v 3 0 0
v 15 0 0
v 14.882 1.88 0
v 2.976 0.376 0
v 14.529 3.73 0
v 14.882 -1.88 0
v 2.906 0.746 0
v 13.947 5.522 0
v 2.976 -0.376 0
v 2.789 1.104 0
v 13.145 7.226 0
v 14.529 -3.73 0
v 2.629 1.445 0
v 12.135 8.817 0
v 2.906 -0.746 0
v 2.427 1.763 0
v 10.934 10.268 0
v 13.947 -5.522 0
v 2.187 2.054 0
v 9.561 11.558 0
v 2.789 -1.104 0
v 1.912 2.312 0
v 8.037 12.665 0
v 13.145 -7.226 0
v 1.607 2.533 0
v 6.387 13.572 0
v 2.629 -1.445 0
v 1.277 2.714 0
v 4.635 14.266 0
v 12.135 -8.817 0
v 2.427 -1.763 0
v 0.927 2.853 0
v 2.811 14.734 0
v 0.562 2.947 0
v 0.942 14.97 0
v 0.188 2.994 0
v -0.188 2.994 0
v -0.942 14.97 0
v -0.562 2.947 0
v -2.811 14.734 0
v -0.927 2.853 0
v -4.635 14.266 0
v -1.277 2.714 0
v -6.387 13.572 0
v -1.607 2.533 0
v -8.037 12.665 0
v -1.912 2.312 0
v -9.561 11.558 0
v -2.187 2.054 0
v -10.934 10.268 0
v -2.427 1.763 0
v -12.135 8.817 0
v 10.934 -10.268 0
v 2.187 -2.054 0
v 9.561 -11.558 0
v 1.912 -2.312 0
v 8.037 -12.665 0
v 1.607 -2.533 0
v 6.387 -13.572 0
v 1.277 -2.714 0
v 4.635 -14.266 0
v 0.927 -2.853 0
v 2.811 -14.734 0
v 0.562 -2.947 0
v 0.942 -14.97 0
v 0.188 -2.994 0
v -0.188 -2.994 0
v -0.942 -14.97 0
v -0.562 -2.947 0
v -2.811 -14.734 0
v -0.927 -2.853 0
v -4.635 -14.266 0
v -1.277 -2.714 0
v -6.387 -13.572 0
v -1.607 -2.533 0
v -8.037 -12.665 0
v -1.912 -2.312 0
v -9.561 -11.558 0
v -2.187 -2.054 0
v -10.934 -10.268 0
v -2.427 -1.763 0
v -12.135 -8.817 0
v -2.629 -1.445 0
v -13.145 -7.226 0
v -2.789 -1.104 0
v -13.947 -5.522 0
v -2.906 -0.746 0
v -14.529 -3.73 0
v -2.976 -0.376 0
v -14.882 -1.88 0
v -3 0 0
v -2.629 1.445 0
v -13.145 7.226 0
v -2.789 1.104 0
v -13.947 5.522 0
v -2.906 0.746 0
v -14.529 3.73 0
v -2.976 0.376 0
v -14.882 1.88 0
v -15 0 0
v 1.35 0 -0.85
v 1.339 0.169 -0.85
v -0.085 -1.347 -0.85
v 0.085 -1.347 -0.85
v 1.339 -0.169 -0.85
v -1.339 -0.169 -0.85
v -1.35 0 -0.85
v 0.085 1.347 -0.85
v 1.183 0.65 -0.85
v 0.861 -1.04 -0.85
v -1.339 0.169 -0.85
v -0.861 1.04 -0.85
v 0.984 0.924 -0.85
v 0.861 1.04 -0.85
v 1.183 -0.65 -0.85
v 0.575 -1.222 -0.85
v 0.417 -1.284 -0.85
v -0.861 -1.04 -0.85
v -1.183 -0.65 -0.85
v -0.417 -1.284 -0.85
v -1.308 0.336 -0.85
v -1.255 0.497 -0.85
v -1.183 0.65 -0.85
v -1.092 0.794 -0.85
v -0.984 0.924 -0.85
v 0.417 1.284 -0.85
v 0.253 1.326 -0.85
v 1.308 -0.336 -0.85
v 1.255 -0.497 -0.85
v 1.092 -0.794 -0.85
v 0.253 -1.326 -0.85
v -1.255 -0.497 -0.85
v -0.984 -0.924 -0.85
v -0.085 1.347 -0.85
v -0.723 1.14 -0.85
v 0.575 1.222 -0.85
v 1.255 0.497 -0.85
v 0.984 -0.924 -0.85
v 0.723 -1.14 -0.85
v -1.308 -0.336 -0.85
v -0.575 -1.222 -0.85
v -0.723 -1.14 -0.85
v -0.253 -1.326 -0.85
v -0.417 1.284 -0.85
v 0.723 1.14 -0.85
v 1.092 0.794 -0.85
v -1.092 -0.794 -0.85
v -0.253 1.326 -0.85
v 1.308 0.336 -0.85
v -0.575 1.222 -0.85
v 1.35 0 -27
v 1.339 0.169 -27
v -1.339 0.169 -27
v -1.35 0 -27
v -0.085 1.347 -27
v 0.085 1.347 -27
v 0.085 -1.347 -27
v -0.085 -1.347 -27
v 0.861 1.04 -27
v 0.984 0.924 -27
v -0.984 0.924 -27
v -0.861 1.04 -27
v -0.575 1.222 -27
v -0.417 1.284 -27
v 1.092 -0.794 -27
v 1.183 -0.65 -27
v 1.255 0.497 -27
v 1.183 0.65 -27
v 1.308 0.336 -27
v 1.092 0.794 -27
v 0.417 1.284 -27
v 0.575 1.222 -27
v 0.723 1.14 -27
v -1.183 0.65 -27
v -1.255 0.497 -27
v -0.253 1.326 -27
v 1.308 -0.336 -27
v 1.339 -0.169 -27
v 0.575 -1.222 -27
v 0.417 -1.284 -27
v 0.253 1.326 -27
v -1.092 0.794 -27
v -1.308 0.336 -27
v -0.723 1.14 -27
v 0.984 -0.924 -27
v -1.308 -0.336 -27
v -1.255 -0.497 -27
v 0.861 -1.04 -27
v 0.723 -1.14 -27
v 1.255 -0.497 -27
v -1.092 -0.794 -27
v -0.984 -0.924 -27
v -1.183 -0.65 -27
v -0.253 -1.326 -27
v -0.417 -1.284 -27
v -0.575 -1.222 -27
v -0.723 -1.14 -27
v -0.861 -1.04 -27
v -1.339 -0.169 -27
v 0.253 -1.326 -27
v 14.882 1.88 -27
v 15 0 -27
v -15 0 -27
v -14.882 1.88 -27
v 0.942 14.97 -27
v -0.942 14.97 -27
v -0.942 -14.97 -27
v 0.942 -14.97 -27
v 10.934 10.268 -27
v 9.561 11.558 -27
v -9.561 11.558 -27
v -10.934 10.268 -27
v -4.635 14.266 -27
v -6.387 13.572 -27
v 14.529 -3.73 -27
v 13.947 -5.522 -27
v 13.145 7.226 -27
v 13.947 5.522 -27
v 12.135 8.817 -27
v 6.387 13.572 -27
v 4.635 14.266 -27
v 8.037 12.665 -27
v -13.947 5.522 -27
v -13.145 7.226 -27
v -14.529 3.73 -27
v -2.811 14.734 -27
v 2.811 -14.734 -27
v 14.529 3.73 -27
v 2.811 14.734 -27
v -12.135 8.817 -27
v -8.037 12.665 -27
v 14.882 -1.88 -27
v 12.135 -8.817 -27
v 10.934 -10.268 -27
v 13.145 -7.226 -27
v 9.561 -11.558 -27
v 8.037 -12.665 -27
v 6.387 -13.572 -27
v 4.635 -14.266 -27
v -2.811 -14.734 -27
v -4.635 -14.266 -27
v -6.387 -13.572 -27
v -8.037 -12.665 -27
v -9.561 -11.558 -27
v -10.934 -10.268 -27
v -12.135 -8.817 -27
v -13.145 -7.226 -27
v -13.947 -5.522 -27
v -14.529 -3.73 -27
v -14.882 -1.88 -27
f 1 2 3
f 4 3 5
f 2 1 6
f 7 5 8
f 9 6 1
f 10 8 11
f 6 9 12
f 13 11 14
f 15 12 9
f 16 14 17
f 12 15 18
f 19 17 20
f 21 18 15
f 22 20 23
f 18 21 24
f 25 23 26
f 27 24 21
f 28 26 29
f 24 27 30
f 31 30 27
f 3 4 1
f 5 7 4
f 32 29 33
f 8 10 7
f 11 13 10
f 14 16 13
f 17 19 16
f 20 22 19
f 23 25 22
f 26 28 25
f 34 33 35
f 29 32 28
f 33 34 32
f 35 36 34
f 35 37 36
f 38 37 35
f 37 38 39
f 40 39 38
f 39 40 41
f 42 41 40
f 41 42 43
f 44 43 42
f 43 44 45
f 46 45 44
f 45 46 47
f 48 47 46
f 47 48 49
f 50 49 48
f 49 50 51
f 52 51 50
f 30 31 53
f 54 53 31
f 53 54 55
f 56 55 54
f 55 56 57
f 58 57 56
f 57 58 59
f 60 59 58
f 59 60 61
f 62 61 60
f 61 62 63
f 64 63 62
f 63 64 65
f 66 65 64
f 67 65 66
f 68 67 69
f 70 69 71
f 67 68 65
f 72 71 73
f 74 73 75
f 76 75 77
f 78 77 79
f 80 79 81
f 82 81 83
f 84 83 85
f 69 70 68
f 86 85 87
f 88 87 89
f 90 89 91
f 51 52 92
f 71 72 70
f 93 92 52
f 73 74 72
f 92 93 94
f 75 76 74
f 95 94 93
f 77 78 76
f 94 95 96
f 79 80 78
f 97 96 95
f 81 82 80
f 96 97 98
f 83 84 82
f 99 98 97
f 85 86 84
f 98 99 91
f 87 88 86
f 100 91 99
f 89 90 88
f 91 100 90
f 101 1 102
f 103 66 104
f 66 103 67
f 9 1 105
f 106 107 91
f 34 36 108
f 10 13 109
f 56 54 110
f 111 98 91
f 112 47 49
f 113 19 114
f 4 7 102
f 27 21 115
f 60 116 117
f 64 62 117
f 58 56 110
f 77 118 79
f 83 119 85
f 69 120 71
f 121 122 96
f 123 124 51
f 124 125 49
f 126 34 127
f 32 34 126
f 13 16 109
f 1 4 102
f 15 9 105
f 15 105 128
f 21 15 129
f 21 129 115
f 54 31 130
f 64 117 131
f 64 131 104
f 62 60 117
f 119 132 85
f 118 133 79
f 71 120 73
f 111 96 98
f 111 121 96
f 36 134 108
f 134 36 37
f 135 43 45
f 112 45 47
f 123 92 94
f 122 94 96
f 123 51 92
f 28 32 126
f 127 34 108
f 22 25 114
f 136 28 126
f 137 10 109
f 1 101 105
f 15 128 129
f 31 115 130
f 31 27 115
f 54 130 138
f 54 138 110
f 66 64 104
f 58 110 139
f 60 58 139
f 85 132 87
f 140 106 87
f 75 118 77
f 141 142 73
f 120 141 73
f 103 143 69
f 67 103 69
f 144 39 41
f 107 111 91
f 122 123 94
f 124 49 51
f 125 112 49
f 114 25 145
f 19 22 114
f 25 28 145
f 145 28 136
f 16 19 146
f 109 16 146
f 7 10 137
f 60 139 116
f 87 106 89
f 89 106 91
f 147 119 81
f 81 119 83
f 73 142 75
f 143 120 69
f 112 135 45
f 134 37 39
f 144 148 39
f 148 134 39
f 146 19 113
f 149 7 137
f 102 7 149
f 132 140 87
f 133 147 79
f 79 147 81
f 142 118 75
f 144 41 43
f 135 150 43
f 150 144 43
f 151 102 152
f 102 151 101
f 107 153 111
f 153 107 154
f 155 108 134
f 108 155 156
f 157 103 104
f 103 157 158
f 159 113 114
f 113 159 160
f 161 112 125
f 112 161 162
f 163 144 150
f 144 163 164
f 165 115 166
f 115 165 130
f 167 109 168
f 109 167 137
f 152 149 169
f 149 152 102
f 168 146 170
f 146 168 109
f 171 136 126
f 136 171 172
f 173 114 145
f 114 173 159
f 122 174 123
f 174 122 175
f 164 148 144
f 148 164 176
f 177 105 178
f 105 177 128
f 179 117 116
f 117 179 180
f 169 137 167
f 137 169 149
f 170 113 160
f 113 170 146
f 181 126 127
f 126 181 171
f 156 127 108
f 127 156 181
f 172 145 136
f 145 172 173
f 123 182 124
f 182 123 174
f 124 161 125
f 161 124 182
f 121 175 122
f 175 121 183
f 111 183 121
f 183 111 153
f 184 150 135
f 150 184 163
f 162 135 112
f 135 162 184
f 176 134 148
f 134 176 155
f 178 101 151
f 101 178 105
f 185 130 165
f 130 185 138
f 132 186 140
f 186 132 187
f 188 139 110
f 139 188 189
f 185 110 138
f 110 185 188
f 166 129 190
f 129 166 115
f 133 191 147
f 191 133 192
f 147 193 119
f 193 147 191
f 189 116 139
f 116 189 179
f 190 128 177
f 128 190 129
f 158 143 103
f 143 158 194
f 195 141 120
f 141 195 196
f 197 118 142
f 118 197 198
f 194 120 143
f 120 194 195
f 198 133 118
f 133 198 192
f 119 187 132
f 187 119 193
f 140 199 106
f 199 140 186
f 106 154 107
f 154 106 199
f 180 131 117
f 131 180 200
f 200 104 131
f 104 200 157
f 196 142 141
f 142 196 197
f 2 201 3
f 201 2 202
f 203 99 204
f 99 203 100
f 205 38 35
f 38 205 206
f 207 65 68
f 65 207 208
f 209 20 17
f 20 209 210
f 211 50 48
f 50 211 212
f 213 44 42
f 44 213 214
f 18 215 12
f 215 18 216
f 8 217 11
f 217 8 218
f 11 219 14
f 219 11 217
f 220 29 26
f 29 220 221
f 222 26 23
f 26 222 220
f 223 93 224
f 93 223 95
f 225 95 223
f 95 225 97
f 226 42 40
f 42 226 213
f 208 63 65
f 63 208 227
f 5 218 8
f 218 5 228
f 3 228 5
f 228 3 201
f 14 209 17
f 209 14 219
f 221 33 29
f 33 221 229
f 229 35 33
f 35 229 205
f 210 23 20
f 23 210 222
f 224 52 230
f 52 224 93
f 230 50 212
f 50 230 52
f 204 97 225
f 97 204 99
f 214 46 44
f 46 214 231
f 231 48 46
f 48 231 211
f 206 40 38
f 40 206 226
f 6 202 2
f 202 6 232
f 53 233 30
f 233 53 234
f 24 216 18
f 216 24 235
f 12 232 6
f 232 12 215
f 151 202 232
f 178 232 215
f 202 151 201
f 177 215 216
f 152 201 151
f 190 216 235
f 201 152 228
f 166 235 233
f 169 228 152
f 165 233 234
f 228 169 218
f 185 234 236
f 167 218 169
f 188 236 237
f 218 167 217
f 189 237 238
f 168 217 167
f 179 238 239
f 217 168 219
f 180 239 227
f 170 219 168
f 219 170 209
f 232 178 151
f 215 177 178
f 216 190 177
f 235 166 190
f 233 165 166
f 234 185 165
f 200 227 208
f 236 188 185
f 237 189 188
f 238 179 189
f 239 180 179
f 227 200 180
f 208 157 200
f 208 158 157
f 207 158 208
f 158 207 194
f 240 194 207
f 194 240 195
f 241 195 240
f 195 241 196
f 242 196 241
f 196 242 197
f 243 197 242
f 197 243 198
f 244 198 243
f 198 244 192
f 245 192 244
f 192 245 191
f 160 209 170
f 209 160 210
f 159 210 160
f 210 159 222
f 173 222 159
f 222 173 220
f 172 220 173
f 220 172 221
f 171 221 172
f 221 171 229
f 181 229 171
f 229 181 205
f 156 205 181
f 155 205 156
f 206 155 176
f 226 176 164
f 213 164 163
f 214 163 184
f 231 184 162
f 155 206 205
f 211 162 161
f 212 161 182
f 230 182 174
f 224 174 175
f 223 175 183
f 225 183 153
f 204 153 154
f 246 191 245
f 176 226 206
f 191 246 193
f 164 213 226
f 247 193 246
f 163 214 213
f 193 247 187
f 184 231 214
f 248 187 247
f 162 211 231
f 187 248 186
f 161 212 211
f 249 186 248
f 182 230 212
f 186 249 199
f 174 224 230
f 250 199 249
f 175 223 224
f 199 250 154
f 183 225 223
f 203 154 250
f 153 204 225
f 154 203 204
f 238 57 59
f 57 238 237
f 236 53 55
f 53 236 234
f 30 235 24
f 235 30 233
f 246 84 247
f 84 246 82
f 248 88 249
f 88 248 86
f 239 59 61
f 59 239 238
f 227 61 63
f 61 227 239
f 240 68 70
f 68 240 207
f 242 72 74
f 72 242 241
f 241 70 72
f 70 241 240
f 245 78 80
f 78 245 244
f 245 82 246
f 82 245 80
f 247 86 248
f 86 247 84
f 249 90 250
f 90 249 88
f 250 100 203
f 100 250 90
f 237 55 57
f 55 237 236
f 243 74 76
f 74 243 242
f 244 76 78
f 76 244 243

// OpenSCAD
$fn = 50;

difference() {
	union() {
		translate(v = [0, 0, -27.0]) {
			cylinder(h = 27, r = 15.0);
		}
	}
	union() {
		translate(v = [0, 0, 0]) {
			rotate(a = [0, 0, 0]) {
				difference() {
					union() {
						translate(v = [0, 0, -30.0]) {
							cylinder(h = 30, r = 1.0);
						}
						translate(v = [0, 0, -0.85]) {
							cylinder(h = 0.85, r1 = 1.35, r2 = 3.0);
						}
						translate(v = [0, 0, -30.0]) {
							cylinder(h = 30, r = 1.35);
						}
						translate(v = [0, 0, -30.0]) {
							cylinder(h = 30, r = 1.0);
						}
					}
					union();
				}
			}
		}
	}
}
